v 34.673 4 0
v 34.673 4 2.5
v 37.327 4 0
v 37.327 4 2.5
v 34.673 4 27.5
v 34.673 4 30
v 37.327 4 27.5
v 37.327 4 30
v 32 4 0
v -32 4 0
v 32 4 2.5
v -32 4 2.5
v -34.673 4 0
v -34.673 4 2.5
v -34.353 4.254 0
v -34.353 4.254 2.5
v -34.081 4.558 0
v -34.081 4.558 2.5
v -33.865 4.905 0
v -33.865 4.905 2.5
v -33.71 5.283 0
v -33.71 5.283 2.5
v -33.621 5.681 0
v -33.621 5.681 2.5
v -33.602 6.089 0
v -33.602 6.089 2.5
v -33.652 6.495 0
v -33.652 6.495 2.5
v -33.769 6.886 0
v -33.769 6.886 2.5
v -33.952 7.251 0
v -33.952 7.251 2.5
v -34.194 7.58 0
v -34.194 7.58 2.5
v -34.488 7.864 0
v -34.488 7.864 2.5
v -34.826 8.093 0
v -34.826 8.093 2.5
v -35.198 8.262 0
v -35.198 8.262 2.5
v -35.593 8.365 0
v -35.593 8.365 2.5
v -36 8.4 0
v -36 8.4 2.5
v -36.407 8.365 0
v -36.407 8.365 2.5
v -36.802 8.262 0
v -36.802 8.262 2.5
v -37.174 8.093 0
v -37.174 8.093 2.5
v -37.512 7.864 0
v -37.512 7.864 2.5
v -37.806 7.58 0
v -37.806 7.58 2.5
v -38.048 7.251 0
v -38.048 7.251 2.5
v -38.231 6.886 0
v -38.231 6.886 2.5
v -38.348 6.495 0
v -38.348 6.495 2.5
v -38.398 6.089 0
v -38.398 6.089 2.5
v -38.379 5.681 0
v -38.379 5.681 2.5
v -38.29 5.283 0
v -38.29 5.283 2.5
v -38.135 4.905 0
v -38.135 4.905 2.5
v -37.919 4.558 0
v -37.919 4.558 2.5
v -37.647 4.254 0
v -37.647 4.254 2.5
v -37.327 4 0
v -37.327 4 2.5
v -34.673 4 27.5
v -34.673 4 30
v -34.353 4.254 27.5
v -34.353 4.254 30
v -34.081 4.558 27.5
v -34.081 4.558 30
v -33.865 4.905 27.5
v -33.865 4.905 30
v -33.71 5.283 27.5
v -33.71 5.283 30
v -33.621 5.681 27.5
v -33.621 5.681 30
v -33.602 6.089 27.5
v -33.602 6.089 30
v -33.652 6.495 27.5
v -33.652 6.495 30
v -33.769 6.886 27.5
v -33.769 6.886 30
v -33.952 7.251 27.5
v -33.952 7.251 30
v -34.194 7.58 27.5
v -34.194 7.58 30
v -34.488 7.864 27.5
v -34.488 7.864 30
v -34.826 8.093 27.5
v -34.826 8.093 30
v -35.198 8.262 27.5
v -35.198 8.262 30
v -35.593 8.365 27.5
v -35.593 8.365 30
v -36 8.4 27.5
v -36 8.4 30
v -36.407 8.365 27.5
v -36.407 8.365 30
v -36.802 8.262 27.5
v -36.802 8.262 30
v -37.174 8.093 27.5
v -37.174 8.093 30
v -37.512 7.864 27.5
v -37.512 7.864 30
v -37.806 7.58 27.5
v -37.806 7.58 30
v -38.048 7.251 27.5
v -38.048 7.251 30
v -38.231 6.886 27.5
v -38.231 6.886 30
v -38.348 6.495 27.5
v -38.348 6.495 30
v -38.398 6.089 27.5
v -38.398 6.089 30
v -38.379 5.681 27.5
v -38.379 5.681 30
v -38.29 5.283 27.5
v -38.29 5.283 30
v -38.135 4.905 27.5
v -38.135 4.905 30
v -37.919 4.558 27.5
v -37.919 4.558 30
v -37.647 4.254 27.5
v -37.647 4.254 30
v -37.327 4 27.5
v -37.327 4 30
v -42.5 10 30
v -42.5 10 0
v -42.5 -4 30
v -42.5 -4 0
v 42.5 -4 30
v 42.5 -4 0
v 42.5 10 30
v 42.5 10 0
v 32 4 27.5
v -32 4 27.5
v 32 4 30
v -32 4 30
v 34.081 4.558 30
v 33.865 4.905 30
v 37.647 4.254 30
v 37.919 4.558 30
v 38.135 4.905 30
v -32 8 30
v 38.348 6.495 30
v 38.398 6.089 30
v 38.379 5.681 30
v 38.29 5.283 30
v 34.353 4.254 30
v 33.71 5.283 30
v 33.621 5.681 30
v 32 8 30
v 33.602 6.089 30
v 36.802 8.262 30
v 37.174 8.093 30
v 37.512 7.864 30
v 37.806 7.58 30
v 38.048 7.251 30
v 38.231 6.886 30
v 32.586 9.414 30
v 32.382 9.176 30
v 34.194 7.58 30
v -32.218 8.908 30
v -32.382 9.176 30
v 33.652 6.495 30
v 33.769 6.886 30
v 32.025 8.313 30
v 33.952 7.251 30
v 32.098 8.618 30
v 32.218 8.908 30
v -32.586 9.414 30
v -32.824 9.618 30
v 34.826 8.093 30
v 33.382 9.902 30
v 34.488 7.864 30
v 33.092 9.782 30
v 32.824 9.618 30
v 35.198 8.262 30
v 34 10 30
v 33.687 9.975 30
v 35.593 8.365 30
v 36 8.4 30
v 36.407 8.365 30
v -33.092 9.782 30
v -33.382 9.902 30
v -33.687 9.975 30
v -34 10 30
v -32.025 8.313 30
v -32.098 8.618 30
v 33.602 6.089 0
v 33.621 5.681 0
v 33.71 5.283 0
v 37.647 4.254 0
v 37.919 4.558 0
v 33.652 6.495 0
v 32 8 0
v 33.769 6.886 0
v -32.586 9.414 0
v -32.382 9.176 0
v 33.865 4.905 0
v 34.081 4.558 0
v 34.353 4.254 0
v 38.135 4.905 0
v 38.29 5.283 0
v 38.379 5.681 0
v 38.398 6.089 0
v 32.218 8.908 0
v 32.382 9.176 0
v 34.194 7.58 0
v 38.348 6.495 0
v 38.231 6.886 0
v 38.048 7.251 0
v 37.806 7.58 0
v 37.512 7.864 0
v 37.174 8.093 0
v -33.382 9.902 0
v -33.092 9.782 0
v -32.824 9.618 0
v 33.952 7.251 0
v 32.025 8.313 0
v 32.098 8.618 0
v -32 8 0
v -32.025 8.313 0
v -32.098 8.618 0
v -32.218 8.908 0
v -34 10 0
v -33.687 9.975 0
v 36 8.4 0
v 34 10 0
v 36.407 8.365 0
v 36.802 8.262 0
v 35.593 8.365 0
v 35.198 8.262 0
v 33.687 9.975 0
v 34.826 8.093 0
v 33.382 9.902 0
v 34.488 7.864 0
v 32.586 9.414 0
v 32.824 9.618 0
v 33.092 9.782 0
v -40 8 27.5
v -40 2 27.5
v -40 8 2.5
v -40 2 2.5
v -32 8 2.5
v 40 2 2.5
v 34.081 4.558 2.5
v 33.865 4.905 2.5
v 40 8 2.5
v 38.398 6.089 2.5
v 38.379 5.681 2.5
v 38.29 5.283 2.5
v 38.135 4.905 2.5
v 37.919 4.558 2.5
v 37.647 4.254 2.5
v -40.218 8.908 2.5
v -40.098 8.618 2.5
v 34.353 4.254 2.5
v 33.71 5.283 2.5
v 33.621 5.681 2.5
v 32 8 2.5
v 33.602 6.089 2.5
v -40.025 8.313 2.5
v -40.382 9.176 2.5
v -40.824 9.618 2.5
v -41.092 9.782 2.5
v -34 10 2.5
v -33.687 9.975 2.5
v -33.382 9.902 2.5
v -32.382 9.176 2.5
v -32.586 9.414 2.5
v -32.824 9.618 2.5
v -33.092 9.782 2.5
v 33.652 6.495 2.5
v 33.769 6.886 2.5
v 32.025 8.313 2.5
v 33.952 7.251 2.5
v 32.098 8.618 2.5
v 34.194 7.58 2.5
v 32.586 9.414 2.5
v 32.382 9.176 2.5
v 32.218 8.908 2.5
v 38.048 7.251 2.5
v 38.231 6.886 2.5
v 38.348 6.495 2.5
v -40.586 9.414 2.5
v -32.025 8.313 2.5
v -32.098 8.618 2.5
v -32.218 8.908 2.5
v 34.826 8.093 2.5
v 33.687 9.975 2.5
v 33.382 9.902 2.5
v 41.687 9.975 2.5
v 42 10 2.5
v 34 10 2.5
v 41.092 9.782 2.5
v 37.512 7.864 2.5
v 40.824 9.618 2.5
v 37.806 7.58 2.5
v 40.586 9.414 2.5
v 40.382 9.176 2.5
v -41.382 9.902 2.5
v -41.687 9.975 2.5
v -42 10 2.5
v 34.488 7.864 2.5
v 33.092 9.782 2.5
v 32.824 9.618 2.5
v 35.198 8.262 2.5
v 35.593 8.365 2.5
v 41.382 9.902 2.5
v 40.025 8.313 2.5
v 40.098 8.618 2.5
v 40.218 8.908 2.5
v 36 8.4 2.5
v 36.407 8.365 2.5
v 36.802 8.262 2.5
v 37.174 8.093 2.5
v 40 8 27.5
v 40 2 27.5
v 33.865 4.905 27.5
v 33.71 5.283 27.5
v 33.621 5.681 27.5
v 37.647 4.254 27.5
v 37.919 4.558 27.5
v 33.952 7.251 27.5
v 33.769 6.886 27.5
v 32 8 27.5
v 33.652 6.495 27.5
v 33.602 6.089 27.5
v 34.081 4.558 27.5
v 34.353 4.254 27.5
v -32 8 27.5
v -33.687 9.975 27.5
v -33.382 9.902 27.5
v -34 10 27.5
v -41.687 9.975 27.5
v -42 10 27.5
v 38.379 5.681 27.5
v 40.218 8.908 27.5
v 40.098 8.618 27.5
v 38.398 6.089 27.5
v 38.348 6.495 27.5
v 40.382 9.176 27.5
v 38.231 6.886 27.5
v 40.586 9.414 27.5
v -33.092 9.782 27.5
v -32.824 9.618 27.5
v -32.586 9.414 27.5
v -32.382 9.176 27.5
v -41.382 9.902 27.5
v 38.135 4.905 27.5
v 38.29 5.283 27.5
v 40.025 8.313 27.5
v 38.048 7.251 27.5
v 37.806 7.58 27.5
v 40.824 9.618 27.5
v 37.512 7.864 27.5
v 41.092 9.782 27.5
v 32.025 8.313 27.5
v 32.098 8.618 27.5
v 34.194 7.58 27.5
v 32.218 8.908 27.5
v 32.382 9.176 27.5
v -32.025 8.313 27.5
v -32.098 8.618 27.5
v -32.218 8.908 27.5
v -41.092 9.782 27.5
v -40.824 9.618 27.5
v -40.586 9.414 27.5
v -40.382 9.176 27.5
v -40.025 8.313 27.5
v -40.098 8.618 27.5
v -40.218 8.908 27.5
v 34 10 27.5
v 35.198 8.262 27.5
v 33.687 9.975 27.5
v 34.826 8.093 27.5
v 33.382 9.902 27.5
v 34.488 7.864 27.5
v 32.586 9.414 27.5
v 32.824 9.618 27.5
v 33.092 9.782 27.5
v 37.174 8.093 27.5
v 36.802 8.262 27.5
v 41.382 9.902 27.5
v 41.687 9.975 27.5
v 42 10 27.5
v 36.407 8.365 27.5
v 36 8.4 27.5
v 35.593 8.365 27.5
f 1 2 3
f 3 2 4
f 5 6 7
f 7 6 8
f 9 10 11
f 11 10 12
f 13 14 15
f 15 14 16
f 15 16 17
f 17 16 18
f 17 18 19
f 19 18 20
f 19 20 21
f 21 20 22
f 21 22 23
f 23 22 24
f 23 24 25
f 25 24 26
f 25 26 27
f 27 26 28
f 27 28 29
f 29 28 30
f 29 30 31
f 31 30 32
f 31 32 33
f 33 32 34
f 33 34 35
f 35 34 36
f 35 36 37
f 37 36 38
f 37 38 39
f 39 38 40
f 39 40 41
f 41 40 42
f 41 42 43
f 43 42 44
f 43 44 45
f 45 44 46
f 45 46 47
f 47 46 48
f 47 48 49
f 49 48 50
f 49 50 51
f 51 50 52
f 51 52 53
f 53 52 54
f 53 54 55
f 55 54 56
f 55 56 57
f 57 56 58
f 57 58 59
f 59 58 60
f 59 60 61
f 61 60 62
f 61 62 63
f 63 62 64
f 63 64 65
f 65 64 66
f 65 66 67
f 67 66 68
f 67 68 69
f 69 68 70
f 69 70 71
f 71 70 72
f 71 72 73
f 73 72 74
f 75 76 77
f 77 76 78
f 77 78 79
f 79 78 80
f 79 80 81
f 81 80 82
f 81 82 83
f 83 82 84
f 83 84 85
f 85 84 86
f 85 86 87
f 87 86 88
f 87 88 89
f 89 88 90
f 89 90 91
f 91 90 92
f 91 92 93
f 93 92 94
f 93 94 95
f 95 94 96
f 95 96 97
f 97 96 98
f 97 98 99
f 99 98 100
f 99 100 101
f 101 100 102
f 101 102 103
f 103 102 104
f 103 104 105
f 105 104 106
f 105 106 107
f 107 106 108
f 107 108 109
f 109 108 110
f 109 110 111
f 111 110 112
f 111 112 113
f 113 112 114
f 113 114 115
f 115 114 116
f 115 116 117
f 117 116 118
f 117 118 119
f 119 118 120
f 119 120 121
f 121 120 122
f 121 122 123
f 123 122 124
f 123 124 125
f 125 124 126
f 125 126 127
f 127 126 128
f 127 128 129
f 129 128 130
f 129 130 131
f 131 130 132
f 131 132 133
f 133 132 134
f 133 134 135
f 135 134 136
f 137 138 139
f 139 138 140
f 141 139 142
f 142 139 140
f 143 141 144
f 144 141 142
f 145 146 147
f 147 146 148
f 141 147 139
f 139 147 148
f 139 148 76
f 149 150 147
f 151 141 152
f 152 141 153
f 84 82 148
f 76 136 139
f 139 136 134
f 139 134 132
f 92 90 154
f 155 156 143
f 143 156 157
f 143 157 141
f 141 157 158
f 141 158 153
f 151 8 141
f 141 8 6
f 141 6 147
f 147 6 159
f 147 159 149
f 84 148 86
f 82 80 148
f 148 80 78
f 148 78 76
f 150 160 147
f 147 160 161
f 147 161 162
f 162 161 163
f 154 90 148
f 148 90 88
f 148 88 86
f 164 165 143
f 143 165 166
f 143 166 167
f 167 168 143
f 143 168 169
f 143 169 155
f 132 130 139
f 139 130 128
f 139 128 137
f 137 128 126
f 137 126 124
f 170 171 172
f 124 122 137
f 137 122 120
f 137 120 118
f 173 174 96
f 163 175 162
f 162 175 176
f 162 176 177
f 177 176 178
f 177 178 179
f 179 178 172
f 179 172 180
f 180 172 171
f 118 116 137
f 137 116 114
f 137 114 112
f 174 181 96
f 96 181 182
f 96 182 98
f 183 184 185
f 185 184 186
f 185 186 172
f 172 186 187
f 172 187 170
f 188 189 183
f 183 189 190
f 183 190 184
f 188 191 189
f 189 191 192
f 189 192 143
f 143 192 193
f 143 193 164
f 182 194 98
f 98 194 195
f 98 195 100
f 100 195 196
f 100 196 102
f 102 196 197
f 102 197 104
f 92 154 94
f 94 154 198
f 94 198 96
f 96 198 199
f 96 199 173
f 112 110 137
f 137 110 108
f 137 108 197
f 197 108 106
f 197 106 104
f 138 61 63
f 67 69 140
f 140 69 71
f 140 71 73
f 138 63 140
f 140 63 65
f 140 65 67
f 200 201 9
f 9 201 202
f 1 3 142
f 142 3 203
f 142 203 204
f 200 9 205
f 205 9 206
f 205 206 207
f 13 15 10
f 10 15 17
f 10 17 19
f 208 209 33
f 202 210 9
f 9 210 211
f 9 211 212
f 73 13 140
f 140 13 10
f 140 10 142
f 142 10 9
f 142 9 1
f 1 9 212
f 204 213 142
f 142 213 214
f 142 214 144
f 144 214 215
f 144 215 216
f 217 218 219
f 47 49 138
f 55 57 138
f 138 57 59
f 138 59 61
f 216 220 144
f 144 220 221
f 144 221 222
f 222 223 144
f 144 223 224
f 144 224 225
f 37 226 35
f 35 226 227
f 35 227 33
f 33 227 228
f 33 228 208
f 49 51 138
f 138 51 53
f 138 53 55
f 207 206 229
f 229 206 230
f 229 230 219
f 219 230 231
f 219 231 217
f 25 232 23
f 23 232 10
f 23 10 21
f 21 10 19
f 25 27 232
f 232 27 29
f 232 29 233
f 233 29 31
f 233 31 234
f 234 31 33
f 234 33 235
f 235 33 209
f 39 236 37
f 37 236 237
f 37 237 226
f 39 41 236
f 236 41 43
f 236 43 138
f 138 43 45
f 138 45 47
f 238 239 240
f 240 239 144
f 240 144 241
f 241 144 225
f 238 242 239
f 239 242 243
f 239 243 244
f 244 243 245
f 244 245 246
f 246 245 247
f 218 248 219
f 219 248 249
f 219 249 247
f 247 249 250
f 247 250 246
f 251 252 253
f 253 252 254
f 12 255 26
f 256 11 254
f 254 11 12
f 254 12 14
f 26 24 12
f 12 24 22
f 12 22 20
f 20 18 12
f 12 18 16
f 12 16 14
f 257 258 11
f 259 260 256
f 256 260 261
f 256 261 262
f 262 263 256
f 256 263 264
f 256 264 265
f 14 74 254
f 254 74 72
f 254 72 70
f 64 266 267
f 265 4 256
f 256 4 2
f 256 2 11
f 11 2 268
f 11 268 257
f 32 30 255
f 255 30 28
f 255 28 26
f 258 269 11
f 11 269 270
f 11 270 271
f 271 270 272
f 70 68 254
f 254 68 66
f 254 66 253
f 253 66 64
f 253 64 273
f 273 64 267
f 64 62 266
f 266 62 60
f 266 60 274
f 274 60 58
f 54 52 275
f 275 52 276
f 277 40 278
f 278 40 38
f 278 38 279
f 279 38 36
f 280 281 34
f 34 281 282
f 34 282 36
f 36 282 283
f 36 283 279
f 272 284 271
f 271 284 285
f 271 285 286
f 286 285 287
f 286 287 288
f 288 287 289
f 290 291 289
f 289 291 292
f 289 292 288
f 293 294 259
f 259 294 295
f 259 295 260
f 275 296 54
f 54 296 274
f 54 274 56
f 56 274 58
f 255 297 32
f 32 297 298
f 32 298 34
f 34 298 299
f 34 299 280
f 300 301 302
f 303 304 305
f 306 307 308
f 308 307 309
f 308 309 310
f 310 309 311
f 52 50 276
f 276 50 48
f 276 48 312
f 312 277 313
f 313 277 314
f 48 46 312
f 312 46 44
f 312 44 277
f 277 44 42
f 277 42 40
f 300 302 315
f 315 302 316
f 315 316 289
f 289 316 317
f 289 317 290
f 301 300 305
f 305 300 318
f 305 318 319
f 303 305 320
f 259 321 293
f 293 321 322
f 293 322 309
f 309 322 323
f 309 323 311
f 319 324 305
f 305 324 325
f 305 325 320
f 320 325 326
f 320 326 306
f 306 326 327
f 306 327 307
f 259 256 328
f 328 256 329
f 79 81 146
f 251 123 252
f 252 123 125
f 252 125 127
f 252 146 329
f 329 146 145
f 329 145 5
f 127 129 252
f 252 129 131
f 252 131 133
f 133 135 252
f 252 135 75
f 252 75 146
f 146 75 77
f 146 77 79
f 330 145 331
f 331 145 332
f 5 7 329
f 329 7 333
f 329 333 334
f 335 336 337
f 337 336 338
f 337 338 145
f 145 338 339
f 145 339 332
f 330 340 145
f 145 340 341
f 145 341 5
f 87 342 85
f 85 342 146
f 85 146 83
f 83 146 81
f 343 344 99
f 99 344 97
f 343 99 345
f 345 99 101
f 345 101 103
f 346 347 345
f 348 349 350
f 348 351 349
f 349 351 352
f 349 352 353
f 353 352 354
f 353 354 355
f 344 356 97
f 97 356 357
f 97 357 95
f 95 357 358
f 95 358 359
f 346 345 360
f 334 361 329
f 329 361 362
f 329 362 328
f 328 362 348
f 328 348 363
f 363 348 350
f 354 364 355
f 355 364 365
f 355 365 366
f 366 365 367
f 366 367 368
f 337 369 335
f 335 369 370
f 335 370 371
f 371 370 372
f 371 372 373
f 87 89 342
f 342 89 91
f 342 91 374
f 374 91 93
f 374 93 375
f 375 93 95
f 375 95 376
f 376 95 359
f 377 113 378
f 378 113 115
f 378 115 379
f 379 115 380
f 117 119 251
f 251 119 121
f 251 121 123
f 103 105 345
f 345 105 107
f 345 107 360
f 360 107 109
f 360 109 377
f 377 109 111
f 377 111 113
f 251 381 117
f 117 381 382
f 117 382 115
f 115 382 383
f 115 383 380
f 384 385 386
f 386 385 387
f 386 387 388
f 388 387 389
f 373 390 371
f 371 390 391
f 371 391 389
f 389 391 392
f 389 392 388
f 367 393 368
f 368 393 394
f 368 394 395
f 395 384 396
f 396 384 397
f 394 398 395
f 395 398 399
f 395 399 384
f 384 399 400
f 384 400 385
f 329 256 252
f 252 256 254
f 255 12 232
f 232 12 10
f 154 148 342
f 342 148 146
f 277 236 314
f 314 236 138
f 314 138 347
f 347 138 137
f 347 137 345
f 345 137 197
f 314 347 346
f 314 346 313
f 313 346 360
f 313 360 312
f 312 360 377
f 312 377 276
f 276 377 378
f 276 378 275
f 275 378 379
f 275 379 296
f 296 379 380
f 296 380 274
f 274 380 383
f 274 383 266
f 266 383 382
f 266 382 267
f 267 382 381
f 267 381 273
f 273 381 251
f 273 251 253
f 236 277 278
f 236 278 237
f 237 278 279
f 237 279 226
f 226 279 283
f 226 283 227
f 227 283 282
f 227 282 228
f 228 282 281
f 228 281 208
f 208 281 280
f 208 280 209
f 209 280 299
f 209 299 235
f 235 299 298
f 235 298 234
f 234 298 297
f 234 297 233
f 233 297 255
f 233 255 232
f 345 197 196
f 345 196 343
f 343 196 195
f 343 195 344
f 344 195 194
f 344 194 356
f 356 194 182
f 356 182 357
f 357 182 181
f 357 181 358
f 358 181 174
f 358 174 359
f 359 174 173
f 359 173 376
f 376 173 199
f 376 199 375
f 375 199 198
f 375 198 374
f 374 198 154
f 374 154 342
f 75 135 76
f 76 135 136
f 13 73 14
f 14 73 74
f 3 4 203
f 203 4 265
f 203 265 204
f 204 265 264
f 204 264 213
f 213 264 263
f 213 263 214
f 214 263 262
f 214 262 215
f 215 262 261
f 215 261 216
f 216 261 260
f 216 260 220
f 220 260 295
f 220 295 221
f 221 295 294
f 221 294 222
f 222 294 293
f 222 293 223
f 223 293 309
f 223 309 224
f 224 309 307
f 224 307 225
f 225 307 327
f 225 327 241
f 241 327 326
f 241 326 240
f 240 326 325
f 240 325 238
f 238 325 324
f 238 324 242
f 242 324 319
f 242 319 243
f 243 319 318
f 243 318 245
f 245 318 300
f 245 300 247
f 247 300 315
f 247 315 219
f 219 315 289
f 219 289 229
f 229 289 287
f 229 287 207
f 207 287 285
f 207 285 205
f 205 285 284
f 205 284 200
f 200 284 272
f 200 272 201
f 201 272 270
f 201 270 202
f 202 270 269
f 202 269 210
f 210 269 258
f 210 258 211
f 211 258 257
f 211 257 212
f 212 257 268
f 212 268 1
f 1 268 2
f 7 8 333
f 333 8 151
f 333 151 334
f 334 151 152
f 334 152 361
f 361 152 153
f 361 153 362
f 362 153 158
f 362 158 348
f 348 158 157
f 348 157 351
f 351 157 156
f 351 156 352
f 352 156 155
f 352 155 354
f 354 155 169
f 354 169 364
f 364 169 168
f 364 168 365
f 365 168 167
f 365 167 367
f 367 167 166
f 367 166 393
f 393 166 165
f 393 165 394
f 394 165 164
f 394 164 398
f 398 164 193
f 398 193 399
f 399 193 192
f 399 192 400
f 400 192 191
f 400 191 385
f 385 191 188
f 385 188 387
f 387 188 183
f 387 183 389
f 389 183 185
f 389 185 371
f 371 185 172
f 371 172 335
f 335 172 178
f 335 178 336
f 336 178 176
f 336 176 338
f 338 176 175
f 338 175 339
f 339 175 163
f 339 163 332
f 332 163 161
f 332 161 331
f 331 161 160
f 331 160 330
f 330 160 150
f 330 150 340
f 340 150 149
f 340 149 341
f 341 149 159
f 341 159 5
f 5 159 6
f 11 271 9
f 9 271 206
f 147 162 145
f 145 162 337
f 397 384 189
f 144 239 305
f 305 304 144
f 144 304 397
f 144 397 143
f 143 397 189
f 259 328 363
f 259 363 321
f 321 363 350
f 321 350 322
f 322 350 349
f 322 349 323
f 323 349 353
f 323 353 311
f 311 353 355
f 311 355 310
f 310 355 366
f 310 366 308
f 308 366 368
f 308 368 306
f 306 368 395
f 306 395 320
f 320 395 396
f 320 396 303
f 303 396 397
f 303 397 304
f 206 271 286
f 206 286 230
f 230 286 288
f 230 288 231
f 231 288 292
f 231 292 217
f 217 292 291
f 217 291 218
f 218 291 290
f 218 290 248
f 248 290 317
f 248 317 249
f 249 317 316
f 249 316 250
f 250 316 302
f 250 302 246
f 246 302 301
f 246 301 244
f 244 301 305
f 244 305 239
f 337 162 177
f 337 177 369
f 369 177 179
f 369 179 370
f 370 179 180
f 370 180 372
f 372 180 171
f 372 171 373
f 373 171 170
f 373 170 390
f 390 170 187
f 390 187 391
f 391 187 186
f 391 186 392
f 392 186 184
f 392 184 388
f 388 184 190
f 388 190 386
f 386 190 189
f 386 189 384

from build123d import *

# Parameters (mm, degrees)
SKETCH1_W            = 85
SKETCH1_H            = 8
BOSS_EXTRUDE1_DEPTH  = 30
SKETCH2_W            = 80
SKETCH2_H            = 25
CUT_EXTRUDE1_DEPTH   = 2
BOSS_EXTRUDE3_DEPTH  = 6
M4_CLEARANCE_HOLE1_D = 4.8
FILLET1_R            = 2


with BuildPart() as part:
    # Sketch1 → Boss-Extrude1 (new body)
    with BuildSketch(Plane.XY):
        Rectangle(SKETCH1_W, SKETCH1_H)
    extrude(amount=BOSS_EXTRUDE1_DEPTH)

    # Sketch2 → Cut-Extrude1 (cut)
    with BuildSketch(Plane(origin=(0, 4, 0), x_dir=(1, 0, 0), z_dir=(0, 1, 0))):
        with Locations((0, -15)):
            Rectangle(SKETCH2_W, SKETCH2_H)
    extrude(amount=-CUT_EXTRUDE1_DEPTH, mode=Mode.SUBTRACT)

    # Sketch3 → Boss-Extrude3 (add)
    with BuildSketch(Plane(origin=(0, 4, 0), x_dir=(1, 0, 0), z_dir=(0, 1, 0))):
        Polygon((-32, 0), (-42.5, 0), (-42.5, -30), (-32, -30), (-32, -27.5), (-40, -27.5), (-40, -2.5), (-32, -2.5), align=None)
    extrude(amount=BOSS_EXTRUDE3_DEPTH)

    # M4 Clearance Hole1 (through all)
    with Locations(Plane.XY.offset(30)):
        with Locations((-36, 6)):
            Hole(M4_CLEARANCE_HOLE1_D / 2)

    # Fillet1
    fillet1_edges = [part.edges().sort_by_distance(p)[0] for p in [
        (-32, 10, 1.25),
        (-32, 10, 28.75),
        (-40, 10, 15),
    ]]
    fillet(fillet1_edges, radius=FILLET1_R)

    # Mirror1: part across plane


with BuildPart() as part_1:
    add(part.part)
    add(part.part.mirror(Plane(origin=(0, 0, 0), x_dir=(0, 0, 1), z_dir=(1, 0, 0))))


solid = part_1.part
